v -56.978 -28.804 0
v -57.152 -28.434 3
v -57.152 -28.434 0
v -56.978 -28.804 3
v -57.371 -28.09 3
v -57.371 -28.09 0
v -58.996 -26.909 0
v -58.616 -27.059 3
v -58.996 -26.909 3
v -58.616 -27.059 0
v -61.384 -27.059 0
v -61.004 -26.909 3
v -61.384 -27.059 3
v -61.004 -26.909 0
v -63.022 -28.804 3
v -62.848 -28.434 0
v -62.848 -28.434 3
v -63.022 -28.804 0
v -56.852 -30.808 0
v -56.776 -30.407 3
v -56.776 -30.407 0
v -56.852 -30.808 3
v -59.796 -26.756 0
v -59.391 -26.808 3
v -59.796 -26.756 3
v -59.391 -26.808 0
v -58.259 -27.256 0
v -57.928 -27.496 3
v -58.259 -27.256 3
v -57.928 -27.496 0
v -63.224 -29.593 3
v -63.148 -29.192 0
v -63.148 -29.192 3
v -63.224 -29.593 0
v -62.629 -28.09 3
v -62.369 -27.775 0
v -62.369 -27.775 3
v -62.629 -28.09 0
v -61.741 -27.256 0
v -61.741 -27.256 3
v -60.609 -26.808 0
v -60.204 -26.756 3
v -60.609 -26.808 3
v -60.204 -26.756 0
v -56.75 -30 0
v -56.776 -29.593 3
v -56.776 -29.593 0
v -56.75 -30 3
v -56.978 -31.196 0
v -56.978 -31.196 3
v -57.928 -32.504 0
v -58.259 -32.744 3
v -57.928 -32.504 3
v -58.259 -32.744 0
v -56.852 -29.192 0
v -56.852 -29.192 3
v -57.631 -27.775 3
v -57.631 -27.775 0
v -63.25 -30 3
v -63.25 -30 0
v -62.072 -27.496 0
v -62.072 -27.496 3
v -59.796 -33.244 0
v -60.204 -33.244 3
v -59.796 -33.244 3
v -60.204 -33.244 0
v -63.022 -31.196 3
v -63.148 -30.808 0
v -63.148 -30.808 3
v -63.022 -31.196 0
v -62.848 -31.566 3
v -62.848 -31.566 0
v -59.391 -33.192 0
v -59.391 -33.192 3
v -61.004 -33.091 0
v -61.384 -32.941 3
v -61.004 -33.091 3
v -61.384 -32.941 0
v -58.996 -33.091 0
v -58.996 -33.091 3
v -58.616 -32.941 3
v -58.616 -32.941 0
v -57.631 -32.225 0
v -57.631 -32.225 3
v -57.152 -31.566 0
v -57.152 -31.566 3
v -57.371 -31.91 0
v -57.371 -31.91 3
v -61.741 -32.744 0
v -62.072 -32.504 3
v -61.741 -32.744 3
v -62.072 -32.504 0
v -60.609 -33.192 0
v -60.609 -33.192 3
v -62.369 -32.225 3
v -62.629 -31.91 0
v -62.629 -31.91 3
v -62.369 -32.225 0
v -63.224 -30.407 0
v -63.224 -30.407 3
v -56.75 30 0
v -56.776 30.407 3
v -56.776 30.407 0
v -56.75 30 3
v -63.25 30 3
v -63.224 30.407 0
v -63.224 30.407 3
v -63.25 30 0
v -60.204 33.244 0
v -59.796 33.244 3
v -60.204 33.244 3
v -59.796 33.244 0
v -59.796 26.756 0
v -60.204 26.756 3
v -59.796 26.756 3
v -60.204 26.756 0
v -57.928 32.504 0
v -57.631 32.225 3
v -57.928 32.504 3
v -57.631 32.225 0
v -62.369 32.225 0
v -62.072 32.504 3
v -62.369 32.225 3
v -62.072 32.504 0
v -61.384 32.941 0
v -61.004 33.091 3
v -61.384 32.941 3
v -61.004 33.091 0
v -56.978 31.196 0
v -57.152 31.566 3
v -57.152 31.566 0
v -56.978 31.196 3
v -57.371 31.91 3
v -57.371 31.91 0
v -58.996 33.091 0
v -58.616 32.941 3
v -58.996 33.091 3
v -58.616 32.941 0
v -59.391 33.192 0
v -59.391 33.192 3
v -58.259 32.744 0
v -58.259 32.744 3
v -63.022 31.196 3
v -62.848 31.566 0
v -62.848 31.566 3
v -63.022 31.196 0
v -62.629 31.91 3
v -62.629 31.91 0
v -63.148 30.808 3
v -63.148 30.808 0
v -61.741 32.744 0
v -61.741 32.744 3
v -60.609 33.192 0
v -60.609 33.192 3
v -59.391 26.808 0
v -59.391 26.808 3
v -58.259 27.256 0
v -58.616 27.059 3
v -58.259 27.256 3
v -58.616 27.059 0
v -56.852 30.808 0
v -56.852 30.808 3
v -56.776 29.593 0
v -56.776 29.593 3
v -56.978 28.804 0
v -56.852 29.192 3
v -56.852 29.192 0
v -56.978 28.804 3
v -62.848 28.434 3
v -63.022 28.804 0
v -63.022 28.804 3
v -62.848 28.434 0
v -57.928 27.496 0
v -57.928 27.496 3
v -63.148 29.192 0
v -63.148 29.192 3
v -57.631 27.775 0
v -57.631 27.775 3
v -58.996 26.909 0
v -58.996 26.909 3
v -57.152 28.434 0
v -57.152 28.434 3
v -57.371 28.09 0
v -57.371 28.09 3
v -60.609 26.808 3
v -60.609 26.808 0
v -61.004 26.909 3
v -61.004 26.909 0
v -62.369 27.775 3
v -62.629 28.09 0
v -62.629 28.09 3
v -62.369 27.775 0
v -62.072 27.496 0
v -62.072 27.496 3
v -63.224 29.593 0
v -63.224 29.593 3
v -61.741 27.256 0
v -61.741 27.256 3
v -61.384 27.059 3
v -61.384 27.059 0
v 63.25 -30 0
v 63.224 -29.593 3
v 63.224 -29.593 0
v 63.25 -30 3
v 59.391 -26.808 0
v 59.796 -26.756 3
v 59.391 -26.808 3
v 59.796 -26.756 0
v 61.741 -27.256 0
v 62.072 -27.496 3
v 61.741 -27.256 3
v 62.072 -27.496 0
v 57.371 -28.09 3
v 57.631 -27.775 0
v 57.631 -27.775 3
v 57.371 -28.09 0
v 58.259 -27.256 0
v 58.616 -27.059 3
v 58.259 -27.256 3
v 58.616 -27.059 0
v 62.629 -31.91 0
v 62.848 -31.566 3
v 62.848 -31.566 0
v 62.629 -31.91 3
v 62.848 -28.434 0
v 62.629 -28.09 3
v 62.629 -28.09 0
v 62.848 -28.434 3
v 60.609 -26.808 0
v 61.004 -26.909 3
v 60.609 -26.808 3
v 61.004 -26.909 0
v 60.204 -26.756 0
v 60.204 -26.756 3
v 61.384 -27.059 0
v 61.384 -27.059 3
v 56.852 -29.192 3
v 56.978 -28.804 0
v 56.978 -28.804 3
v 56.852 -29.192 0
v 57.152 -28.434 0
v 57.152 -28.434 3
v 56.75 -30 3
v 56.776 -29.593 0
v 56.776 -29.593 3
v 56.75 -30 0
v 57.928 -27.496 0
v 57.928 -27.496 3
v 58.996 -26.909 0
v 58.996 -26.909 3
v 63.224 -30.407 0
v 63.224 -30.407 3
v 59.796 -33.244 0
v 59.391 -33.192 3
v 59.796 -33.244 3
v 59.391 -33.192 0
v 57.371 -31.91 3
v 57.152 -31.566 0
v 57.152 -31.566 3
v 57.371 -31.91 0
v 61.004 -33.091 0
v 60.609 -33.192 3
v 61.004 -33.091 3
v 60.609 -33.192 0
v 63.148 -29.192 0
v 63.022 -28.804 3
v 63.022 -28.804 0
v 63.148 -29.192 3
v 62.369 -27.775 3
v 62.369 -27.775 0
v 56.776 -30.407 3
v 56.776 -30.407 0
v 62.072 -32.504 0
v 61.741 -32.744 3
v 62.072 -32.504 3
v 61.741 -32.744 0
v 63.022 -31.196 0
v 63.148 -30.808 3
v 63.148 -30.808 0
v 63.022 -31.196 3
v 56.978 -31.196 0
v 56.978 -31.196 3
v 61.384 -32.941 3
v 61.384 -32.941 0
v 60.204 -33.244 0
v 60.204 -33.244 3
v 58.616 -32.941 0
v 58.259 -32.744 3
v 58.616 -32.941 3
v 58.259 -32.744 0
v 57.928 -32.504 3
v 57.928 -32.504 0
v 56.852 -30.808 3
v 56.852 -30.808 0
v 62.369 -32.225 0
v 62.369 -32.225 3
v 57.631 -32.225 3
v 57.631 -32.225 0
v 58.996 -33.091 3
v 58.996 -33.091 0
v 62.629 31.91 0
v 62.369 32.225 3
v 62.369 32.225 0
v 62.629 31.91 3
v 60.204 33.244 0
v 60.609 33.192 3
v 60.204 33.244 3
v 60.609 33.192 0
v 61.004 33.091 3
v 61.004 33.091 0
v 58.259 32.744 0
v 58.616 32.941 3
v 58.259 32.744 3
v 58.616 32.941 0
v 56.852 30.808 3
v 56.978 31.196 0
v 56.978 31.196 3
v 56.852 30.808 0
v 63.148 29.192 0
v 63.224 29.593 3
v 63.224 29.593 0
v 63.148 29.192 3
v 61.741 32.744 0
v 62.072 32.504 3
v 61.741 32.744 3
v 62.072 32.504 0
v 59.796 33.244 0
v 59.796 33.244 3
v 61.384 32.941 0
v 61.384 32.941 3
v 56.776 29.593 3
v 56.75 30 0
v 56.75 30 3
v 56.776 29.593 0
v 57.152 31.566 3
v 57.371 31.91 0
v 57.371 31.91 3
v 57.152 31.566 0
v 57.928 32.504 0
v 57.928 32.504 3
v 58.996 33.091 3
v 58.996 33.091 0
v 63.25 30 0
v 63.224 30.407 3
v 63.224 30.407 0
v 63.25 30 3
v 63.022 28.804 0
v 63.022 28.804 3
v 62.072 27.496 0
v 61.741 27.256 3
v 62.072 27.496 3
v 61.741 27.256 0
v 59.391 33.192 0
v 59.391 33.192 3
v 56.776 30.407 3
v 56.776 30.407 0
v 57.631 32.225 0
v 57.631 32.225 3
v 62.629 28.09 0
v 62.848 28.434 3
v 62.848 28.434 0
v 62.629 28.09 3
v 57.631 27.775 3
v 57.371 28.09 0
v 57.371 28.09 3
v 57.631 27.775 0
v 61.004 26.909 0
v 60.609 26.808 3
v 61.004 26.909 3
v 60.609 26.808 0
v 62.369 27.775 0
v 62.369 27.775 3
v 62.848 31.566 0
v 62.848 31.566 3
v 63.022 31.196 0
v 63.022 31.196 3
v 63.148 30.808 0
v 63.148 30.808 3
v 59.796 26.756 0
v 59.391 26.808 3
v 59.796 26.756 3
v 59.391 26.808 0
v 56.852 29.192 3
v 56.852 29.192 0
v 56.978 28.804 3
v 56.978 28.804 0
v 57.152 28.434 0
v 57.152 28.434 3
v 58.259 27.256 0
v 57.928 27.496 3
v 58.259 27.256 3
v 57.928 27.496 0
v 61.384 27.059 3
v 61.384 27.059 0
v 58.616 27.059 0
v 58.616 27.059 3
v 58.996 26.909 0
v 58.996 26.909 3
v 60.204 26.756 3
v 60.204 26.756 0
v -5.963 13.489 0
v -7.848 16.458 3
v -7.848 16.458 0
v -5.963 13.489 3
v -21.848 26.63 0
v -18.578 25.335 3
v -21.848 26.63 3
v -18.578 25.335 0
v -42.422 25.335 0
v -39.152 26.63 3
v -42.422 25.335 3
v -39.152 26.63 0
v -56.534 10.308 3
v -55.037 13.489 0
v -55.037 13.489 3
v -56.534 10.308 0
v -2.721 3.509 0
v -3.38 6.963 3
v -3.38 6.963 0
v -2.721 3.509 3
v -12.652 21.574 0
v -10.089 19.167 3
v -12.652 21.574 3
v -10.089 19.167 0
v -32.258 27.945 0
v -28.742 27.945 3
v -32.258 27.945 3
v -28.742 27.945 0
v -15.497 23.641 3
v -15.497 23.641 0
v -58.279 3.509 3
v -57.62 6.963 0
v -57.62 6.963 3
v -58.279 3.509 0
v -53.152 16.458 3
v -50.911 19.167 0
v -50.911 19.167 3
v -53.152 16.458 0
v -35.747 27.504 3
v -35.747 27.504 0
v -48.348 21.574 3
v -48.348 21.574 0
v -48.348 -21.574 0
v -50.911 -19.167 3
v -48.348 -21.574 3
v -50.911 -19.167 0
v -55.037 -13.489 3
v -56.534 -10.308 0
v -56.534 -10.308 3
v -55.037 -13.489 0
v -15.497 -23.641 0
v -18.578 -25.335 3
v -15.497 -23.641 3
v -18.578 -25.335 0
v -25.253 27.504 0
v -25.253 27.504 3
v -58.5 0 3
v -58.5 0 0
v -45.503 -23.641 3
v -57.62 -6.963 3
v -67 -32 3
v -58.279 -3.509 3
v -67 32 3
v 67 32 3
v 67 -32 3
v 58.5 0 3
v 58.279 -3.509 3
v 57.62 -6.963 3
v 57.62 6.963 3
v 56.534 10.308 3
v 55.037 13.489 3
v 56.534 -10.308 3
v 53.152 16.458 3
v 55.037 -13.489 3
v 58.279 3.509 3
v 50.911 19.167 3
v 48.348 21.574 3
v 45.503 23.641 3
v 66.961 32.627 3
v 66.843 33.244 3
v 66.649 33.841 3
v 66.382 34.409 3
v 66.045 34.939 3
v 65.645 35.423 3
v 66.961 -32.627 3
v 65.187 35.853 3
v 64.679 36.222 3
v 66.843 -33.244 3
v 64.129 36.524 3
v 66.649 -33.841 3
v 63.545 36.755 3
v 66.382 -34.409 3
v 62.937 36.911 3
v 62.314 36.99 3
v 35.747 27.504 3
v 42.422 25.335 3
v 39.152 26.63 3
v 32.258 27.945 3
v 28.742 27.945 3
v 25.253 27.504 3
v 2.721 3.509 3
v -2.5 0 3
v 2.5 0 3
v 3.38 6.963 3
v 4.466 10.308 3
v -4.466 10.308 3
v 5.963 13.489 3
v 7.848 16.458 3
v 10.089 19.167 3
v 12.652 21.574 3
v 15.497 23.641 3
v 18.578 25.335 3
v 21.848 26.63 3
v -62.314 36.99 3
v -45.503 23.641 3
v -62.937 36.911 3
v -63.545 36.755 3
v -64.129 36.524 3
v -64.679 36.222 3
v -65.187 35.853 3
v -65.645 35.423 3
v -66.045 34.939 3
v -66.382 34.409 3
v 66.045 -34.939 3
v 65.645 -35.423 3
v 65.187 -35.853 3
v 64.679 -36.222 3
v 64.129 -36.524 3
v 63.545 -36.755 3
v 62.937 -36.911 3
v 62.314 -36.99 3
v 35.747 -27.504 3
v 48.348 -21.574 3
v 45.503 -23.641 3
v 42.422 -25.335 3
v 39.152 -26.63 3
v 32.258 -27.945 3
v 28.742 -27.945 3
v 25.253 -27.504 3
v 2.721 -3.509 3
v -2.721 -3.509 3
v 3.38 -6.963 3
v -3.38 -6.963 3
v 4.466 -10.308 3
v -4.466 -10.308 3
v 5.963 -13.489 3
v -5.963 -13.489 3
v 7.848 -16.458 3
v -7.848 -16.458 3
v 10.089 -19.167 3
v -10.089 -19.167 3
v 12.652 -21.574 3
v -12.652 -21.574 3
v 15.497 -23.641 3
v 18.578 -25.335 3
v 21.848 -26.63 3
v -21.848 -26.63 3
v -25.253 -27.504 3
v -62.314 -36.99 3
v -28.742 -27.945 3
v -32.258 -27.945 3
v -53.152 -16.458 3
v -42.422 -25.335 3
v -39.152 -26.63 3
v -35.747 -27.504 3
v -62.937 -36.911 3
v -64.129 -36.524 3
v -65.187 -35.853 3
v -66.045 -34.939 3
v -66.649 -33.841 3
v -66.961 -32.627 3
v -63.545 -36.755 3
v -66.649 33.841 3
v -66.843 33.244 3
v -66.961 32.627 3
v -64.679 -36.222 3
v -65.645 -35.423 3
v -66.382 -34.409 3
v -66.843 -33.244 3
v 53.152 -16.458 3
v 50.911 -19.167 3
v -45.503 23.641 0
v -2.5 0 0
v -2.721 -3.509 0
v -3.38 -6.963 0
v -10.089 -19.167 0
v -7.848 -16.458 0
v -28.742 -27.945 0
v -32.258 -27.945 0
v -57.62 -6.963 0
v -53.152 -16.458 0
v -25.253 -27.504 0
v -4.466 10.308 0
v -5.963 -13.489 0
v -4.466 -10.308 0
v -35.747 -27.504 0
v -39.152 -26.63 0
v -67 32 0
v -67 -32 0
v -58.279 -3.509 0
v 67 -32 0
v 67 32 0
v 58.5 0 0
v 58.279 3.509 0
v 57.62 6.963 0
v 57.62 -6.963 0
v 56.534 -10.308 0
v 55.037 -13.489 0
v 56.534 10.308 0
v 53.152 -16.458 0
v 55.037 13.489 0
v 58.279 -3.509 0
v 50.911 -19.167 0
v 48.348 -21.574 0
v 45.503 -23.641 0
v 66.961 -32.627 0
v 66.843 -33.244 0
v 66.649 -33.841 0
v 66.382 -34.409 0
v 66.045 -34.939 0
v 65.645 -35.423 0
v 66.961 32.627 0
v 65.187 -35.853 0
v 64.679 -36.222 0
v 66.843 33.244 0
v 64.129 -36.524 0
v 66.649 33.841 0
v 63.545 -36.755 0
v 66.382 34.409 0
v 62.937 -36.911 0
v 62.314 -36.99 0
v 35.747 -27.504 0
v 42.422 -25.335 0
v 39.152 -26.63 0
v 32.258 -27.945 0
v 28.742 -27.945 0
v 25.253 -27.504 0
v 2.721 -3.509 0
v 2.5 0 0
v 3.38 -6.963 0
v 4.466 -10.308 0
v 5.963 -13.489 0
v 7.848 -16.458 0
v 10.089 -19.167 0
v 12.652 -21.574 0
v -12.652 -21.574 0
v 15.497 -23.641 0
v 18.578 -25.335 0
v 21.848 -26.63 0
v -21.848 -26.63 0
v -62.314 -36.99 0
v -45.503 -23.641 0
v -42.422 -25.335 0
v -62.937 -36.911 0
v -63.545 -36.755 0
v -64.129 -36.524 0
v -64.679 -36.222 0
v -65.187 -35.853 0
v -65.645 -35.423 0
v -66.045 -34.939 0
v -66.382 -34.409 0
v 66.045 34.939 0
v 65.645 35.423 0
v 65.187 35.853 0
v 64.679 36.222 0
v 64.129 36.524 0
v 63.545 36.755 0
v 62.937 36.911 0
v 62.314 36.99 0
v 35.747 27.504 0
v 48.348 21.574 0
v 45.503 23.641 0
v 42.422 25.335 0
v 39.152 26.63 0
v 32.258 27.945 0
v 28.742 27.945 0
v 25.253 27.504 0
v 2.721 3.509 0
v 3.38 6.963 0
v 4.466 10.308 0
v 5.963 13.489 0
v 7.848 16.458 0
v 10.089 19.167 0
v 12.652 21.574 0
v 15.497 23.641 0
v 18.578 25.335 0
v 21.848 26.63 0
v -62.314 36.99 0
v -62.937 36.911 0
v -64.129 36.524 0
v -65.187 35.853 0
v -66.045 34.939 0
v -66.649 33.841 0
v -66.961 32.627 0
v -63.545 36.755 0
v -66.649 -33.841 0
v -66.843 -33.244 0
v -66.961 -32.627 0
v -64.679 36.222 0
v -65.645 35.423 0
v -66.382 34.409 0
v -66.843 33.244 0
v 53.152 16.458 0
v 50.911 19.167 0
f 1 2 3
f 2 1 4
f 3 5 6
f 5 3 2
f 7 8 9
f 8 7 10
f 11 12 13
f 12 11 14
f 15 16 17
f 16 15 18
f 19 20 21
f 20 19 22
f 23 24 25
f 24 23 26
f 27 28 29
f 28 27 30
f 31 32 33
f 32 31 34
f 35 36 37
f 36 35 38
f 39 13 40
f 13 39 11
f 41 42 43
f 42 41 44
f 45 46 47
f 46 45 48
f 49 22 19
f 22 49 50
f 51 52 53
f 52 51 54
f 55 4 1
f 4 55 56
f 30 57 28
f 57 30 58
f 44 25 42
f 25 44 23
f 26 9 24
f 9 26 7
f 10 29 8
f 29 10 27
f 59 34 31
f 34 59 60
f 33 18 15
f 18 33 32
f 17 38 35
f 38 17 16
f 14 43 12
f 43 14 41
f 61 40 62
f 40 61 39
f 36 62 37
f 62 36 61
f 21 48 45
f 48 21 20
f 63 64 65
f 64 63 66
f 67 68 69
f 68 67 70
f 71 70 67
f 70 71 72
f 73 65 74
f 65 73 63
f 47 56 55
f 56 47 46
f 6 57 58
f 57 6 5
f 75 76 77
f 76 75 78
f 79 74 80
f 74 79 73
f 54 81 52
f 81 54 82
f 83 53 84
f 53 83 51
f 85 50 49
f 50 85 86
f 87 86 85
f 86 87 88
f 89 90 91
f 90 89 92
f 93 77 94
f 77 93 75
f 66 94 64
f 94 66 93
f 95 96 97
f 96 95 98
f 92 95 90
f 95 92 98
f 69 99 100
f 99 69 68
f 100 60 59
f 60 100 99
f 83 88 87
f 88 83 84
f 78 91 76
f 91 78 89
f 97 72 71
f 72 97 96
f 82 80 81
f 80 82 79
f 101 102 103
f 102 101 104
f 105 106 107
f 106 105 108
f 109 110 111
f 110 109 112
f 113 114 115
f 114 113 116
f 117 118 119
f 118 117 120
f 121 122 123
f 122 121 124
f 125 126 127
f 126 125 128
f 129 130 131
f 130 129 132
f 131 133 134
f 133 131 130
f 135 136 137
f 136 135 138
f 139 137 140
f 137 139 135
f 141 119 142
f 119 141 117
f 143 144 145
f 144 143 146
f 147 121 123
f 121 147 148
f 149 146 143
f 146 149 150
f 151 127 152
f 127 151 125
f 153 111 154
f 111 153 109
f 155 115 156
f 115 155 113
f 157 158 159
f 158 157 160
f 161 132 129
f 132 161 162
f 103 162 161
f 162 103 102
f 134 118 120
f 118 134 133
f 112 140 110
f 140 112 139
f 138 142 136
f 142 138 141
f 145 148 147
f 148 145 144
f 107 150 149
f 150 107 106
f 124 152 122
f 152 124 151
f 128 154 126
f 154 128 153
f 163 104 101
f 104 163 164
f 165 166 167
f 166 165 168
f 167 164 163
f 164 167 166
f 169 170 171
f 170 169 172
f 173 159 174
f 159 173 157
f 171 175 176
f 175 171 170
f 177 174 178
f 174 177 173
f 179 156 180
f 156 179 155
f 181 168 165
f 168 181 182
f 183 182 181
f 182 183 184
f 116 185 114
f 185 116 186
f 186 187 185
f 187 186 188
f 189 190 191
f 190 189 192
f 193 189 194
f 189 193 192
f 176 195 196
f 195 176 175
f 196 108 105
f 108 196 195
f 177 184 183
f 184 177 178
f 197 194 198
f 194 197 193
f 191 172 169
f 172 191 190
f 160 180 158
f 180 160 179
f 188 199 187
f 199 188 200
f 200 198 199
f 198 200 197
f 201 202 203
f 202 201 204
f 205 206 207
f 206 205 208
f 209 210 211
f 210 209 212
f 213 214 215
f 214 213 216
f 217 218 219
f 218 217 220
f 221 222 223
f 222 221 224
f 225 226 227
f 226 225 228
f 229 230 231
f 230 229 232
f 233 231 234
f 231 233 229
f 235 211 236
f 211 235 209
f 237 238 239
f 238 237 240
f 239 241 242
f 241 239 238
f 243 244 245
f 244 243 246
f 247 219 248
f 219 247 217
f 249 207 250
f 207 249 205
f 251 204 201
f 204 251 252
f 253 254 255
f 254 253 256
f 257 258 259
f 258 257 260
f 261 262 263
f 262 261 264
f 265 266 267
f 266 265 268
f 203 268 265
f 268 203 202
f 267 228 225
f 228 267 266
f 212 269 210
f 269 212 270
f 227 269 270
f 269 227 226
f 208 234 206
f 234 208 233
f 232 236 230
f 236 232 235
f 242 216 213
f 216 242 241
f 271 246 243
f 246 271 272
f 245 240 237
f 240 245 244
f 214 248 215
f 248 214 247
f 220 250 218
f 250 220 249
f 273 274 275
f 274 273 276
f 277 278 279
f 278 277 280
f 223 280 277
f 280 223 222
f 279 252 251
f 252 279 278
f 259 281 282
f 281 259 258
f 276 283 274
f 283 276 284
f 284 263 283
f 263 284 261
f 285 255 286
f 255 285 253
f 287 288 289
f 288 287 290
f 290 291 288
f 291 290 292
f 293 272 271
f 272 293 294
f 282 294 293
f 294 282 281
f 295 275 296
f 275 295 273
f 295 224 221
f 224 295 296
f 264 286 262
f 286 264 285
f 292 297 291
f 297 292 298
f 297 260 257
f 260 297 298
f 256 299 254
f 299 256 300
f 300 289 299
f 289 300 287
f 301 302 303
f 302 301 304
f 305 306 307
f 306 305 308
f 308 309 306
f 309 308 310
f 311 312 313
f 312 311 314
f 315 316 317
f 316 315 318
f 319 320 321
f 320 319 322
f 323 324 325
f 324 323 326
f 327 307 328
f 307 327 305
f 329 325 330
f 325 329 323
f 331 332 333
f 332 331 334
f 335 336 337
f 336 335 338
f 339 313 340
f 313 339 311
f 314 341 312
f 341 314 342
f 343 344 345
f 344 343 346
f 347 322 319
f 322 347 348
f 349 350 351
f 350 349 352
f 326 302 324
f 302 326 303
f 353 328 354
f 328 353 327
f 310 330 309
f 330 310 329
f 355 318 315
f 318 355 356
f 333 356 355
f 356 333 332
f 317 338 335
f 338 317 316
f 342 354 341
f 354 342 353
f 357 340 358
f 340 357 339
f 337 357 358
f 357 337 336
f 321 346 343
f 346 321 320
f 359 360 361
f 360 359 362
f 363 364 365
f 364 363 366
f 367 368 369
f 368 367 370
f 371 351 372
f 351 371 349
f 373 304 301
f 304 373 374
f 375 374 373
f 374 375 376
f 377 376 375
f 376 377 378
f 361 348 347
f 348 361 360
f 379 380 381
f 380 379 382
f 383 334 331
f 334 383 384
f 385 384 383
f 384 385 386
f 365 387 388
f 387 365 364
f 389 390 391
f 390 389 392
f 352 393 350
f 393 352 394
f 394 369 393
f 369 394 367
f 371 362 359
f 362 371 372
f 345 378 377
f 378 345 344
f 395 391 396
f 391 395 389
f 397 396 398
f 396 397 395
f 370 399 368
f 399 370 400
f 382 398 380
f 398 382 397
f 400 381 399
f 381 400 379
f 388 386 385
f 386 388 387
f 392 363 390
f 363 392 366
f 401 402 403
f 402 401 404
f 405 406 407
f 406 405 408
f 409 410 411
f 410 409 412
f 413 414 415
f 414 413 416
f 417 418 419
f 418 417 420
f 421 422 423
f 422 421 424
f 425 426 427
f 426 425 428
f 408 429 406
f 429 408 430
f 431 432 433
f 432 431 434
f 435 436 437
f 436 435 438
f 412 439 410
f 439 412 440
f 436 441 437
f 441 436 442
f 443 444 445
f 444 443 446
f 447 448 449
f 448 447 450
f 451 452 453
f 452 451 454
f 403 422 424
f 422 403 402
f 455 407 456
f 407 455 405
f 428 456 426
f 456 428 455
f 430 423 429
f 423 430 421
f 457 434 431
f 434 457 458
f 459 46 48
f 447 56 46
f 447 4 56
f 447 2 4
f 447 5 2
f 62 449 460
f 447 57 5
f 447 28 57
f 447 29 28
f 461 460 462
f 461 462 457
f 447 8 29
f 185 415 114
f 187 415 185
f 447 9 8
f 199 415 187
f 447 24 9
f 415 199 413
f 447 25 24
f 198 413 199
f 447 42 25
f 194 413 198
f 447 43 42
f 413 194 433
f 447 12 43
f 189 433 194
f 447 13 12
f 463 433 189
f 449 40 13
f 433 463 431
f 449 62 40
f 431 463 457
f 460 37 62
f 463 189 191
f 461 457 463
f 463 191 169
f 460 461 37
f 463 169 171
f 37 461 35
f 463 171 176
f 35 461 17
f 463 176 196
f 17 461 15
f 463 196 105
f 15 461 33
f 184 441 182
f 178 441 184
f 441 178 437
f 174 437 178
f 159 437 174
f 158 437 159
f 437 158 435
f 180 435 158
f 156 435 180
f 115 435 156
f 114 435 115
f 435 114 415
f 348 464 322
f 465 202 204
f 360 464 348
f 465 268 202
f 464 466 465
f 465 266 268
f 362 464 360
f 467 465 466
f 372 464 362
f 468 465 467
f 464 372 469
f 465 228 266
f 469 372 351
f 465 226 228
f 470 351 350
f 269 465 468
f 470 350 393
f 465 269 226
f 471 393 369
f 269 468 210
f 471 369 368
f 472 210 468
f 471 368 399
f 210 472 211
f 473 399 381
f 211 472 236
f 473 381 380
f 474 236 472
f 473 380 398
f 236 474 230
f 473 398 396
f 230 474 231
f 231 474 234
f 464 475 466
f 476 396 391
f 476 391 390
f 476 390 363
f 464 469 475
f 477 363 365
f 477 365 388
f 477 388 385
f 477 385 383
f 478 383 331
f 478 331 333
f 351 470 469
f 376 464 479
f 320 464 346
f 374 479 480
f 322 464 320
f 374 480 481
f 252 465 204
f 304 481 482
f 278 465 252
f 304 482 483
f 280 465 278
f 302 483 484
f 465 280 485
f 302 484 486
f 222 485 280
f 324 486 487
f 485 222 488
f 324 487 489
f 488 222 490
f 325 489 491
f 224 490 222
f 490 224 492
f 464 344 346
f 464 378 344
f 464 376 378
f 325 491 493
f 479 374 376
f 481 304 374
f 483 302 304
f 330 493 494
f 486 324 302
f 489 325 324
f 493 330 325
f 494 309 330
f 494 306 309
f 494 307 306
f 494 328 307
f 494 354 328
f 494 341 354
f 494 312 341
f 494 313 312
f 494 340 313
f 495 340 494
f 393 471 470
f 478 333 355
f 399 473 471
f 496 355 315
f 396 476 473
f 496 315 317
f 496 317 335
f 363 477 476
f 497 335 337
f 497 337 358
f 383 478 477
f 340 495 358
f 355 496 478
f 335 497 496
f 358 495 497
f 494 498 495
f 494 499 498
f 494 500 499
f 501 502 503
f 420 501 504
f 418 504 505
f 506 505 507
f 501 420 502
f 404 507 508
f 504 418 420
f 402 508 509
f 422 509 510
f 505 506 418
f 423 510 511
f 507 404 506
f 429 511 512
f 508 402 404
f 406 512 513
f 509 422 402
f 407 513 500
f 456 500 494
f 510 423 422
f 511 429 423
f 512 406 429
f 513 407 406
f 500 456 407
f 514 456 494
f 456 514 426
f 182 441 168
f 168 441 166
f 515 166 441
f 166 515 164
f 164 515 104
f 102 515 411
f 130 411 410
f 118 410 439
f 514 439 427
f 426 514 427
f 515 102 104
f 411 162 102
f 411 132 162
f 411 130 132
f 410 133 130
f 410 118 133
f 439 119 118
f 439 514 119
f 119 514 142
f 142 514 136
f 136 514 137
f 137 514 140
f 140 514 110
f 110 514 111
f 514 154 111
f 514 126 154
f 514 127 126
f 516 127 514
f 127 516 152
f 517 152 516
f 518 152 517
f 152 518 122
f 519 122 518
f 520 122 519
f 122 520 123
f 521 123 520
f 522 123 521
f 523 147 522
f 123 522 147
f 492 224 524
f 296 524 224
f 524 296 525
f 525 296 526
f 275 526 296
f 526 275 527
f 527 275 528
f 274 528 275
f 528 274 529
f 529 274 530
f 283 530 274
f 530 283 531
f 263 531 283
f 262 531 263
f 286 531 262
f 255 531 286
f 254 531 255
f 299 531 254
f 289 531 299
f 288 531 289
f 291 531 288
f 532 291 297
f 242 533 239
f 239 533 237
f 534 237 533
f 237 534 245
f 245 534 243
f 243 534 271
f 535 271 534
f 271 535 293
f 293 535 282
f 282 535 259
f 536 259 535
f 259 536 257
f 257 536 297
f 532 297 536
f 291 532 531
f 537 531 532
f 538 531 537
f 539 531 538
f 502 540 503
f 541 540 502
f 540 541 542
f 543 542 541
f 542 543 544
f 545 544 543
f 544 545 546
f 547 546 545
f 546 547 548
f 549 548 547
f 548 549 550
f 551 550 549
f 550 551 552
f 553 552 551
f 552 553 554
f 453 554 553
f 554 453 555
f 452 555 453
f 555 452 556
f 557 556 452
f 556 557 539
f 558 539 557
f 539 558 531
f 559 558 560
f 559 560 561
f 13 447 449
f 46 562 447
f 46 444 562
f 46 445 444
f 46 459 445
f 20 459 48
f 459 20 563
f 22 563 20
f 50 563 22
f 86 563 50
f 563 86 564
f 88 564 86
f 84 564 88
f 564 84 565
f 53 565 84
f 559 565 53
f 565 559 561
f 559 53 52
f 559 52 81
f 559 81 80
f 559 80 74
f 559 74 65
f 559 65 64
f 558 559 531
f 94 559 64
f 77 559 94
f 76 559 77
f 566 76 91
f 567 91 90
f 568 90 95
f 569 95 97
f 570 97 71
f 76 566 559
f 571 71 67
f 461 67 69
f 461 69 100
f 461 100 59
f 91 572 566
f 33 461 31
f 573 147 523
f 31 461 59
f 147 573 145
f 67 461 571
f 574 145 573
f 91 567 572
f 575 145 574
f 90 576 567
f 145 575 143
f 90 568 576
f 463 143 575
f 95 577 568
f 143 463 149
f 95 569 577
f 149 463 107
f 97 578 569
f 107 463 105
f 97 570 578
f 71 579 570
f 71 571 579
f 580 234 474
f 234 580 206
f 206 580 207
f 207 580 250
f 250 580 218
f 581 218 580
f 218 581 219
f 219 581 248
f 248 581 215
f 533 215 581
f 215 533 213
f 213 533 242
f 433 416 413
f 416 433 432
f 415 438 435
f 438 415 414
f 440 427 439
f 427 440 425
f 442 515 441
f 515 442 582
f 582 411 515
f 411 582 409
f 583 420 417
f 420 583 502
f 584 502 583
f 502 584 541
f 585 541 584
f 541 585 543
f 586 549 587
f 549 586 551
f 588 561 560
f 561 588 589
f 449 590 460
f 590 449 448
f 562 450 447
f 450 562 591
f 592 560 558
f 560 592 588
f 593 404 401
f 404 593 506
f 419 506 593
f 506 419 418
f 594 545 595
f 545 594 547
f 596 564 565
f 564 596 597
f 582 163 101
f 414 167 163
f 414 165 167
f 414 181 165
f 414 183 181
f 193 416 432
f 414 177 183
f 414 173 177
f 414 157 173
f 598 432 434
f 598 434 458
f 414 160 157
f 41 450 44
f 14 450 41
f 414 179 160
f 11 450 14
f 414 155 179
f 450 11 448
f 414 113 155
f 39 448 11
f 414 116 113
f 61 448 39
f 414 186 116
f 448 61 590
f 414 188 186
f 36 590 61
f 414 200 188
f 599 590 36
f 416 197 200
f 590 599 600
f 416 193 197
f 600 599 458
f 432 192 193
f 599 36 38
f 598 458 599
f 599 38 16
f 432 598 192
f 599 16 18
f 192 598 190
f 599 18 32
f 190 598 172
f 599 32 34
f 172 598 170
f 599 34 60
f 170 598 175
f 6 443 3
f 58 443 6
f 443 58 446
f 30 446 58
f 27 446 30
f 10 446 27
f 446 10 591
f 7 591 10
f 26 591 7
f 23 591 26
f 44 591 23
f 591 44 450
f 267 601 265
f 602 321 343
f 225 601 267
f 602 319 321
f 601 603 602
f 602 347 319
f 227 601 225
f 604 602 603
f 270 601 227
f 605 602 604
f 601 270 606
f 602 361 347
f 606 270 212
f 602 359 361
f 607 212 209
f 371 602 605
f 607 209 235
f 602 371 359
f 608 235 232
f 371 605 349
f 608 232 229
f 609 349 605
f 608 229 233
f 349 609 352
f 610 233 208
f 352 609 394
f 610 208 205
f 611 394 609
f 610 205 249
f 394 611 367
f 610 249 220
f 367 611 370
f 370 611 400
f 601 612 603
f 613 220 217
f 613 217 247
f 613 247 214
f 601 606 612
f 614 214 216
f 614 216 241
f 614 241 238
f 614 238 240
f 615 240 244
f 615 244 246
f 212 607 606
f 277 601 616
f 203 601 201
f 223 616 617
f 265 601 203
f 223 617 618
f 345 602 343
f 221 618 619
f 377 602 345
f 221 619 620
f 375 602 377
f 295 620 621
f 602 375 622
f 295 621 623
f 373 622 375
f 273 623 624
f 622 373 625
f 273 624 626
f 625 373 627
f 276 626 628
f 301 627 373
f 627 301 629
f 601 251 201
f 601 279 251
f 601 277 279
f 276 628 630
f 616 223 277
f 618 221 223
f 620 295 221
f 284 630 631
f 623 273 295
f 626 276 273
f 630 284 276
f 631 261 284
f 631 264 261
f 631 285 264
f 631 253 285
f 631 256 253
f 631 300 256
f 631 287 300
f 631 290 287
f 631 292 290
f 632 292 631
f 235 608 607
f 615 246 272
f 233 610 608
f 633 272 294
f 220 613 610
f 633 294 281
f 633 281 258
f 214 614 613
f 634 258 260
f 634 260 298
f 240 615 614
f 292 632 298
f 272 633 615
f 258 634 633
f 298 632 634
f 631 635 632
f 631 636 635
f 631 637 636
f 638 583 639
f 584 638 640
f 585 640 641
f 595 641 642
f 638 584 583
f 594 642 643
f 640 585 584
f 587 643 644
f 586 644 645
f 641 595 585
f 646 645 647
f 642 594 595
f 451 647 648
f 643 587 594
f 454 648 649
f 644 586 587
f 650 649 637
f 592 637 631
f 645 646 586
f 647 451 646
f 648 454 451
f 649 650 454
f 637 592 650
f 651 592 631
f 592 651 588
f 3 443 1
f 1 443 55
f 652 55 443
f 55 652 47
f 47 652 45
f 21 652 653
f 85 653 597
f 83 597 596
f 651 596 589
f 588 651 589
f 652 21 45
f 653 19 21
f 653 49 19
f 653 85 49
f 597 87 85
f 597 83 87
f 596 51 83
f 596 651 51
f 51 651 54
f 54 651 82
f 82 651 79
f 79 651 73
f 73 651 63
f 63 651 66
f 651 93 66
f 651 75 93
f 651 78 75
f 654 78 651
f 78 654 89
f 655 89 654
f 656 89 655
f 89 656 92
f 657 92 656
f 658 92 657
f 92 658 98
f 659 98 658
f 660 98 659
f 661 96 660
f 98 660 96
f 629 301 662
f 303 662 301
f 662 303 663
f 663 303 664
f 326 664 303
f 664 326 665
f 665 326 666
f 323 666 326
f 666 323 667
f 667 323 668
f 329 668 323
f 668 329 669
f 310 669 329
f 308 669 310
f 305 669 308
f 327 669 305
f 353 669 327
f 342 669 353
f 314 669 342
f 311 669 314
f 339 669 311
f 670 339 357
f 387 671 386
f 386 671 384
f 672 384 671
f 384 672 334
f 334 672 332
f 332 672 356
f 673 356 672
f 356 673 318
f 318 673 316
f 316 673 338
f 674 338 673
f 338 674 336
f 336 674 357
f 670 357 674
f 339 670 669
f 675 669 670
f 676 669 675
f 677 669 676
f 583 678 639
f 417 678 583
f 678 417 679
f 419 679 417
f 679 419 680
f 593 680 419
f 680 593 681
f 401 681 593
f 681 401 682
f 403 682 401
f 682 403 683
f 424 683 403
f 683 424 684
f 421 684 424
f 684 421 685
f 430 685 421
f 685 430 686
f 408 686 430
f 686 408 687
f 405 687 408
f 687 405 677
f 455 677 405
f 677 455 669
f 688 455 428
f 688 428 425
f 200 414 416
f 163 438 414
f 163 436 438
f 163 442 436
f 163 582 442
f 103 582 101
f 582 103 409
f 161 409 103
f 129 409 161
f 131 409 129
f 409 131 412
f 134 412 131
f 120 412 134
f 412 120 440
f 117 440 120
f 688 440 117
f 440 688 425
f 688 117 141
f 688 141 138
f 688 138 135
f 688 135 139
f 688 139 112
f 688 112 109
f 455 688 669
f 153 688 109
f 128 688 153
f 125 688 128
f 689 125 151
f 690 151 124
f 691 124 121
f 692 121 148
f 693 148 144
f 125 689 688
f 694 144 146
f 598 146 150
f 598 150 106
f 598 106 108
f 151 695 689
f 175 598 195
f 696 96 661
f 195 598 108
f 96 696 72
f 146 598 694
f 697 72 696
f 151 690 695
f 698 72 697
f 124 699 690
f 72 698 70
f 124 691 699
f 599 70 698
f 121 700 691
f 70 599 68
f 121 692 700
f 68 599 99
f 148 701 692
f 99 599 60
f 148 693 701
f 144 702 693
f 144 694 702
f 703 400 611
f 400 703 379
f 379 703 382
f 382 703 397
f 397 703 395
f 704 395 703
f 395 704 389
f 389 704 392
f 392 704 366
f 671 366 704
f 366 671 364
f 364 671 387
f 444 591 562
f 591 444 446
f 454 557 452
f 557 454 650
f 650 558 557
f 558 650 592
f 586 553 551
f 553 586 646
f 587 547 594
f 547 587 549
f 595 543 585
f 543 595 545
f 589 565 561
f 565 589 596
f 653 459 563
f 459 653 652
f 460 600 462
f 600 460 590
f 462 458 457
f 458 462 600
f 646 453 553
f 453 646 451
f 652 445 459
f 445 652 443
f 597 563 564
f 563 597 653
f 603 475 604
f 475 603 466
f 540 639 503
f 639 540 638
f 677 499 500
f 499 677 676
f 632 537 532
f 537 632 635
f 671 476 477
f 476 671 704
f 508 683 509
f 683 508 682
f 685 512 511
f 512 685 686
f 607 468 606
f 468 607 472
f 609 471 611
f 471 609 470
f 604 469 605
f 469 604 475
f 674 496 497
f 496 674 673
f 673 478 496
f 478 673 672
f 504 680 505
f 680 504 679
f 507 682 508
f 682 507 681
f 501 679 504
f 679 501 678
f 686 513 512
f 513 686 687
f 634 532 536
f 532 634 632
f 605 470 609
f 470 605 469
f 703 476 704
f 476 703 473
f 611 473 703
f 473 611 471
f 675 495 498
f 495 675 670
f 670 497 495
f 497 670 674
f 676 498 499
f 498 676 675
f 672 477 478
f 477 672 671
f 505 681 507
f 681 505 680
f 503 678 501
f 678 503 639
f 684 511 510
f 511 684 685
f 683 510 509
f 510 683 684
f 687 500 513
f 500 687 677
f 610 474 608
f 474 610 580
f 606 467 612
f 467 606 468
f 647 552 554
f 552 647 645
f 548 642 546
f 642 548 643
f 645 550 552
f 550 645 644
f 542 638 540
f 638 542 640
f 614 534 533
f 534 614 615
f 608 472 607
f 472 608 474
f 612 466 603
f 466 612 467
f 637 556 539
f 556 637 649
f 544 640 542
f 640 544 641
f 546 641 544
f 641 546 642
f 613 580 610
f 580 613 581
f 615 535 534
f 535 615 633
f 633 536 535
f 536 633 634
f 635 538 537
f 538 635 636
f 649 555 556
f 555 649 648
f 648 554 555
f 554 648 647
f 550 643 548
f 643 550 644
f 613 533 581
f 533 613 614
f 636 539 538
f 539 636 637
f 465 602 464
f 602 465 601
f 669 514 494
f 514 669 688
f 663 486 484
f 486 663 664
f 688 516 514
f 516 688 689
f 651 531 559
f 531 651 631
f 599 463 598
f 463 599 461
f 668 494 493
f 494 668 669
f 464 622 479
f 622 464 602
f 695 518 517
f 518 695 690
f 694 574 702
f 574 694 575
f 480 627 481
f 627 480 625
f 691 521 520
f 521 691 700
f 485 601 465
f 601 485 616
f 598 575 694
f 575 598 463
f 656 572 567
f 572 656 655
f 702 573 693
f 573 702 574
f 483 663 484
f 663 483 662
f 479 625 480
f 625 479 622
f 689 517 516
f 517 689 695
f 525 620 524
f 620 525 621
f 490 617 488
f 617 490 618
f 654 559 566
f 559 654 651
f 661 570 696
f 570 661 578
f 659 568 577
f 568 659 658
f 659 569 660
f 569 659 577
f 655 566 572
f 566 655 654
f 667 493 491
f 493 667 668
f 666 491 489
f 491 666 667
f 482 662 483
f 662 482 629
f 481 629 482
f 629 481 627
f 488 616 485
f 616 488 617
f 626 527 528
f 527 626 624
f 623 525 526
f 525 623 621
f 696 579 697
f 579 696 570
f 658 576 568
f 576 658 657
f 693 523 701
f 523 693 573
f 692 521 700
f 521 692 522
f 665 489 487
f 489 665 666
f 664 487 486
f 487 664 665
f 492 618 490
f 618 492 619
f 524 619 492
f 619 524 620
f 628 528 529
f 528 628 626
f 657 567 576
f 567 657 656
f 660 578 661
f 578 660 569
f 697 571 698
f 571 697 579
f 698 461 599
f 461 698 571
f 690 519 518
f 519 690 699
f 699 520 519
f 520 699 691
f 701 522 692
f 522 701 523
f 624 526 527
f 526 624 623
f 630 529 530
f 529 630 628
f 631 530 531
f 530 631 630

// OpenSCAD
$fn = 50;


difference() {
	union() {
		hull() {
			translate(v = [-62.0000000000, 32.0000000000, 0]) {
				cylinder(h = 3, r = 5);
			}
			translate(v = [62.0000000000, 32.0000000000, 0]) {
				cylinder(h = 3, r = 5);
			}
			translate(v = [-62.0000000000, -32.0000000000, 0]) {
				cylinder(h = 3, r = 5);
			}
			translate(v = [62.0000000000, -32.0000000000, 0]) {
				cylinder(h = 3, r = 5);
			}
		}
	}
	union() {
		#translate(v = [-60.0000000000, -30.0000000000, -100.0000000000]) {
			cylinder(h = 200, r = 3.2500000000);
		}
		#translate(v = [-60.0000000000, 30.0000000000, -100.0000000000]) {
			cylinder(h = 200, r = 3.2500000000);
		}
		#translate(v = [60.0000000000, -30.0000000000, -100.0000000000]) {
			cylinder(h = 200, r = 3.2500000000);
		}
		#translate(v = [60.0000000000, 30.0000000000, -100.0000000000]) {
			cylinder(h = 200, r = 3.2500000000);
		}
		#translate(v = [-30.5000000000, 0, 0]) {
			cylinder(h = 3, r = 28.0000000000);
		}
		#translate(v = [30.5000000000, 0, 0]) {
			cylinder(h = 3, r = 28.0000000000);
		}
	}
}
